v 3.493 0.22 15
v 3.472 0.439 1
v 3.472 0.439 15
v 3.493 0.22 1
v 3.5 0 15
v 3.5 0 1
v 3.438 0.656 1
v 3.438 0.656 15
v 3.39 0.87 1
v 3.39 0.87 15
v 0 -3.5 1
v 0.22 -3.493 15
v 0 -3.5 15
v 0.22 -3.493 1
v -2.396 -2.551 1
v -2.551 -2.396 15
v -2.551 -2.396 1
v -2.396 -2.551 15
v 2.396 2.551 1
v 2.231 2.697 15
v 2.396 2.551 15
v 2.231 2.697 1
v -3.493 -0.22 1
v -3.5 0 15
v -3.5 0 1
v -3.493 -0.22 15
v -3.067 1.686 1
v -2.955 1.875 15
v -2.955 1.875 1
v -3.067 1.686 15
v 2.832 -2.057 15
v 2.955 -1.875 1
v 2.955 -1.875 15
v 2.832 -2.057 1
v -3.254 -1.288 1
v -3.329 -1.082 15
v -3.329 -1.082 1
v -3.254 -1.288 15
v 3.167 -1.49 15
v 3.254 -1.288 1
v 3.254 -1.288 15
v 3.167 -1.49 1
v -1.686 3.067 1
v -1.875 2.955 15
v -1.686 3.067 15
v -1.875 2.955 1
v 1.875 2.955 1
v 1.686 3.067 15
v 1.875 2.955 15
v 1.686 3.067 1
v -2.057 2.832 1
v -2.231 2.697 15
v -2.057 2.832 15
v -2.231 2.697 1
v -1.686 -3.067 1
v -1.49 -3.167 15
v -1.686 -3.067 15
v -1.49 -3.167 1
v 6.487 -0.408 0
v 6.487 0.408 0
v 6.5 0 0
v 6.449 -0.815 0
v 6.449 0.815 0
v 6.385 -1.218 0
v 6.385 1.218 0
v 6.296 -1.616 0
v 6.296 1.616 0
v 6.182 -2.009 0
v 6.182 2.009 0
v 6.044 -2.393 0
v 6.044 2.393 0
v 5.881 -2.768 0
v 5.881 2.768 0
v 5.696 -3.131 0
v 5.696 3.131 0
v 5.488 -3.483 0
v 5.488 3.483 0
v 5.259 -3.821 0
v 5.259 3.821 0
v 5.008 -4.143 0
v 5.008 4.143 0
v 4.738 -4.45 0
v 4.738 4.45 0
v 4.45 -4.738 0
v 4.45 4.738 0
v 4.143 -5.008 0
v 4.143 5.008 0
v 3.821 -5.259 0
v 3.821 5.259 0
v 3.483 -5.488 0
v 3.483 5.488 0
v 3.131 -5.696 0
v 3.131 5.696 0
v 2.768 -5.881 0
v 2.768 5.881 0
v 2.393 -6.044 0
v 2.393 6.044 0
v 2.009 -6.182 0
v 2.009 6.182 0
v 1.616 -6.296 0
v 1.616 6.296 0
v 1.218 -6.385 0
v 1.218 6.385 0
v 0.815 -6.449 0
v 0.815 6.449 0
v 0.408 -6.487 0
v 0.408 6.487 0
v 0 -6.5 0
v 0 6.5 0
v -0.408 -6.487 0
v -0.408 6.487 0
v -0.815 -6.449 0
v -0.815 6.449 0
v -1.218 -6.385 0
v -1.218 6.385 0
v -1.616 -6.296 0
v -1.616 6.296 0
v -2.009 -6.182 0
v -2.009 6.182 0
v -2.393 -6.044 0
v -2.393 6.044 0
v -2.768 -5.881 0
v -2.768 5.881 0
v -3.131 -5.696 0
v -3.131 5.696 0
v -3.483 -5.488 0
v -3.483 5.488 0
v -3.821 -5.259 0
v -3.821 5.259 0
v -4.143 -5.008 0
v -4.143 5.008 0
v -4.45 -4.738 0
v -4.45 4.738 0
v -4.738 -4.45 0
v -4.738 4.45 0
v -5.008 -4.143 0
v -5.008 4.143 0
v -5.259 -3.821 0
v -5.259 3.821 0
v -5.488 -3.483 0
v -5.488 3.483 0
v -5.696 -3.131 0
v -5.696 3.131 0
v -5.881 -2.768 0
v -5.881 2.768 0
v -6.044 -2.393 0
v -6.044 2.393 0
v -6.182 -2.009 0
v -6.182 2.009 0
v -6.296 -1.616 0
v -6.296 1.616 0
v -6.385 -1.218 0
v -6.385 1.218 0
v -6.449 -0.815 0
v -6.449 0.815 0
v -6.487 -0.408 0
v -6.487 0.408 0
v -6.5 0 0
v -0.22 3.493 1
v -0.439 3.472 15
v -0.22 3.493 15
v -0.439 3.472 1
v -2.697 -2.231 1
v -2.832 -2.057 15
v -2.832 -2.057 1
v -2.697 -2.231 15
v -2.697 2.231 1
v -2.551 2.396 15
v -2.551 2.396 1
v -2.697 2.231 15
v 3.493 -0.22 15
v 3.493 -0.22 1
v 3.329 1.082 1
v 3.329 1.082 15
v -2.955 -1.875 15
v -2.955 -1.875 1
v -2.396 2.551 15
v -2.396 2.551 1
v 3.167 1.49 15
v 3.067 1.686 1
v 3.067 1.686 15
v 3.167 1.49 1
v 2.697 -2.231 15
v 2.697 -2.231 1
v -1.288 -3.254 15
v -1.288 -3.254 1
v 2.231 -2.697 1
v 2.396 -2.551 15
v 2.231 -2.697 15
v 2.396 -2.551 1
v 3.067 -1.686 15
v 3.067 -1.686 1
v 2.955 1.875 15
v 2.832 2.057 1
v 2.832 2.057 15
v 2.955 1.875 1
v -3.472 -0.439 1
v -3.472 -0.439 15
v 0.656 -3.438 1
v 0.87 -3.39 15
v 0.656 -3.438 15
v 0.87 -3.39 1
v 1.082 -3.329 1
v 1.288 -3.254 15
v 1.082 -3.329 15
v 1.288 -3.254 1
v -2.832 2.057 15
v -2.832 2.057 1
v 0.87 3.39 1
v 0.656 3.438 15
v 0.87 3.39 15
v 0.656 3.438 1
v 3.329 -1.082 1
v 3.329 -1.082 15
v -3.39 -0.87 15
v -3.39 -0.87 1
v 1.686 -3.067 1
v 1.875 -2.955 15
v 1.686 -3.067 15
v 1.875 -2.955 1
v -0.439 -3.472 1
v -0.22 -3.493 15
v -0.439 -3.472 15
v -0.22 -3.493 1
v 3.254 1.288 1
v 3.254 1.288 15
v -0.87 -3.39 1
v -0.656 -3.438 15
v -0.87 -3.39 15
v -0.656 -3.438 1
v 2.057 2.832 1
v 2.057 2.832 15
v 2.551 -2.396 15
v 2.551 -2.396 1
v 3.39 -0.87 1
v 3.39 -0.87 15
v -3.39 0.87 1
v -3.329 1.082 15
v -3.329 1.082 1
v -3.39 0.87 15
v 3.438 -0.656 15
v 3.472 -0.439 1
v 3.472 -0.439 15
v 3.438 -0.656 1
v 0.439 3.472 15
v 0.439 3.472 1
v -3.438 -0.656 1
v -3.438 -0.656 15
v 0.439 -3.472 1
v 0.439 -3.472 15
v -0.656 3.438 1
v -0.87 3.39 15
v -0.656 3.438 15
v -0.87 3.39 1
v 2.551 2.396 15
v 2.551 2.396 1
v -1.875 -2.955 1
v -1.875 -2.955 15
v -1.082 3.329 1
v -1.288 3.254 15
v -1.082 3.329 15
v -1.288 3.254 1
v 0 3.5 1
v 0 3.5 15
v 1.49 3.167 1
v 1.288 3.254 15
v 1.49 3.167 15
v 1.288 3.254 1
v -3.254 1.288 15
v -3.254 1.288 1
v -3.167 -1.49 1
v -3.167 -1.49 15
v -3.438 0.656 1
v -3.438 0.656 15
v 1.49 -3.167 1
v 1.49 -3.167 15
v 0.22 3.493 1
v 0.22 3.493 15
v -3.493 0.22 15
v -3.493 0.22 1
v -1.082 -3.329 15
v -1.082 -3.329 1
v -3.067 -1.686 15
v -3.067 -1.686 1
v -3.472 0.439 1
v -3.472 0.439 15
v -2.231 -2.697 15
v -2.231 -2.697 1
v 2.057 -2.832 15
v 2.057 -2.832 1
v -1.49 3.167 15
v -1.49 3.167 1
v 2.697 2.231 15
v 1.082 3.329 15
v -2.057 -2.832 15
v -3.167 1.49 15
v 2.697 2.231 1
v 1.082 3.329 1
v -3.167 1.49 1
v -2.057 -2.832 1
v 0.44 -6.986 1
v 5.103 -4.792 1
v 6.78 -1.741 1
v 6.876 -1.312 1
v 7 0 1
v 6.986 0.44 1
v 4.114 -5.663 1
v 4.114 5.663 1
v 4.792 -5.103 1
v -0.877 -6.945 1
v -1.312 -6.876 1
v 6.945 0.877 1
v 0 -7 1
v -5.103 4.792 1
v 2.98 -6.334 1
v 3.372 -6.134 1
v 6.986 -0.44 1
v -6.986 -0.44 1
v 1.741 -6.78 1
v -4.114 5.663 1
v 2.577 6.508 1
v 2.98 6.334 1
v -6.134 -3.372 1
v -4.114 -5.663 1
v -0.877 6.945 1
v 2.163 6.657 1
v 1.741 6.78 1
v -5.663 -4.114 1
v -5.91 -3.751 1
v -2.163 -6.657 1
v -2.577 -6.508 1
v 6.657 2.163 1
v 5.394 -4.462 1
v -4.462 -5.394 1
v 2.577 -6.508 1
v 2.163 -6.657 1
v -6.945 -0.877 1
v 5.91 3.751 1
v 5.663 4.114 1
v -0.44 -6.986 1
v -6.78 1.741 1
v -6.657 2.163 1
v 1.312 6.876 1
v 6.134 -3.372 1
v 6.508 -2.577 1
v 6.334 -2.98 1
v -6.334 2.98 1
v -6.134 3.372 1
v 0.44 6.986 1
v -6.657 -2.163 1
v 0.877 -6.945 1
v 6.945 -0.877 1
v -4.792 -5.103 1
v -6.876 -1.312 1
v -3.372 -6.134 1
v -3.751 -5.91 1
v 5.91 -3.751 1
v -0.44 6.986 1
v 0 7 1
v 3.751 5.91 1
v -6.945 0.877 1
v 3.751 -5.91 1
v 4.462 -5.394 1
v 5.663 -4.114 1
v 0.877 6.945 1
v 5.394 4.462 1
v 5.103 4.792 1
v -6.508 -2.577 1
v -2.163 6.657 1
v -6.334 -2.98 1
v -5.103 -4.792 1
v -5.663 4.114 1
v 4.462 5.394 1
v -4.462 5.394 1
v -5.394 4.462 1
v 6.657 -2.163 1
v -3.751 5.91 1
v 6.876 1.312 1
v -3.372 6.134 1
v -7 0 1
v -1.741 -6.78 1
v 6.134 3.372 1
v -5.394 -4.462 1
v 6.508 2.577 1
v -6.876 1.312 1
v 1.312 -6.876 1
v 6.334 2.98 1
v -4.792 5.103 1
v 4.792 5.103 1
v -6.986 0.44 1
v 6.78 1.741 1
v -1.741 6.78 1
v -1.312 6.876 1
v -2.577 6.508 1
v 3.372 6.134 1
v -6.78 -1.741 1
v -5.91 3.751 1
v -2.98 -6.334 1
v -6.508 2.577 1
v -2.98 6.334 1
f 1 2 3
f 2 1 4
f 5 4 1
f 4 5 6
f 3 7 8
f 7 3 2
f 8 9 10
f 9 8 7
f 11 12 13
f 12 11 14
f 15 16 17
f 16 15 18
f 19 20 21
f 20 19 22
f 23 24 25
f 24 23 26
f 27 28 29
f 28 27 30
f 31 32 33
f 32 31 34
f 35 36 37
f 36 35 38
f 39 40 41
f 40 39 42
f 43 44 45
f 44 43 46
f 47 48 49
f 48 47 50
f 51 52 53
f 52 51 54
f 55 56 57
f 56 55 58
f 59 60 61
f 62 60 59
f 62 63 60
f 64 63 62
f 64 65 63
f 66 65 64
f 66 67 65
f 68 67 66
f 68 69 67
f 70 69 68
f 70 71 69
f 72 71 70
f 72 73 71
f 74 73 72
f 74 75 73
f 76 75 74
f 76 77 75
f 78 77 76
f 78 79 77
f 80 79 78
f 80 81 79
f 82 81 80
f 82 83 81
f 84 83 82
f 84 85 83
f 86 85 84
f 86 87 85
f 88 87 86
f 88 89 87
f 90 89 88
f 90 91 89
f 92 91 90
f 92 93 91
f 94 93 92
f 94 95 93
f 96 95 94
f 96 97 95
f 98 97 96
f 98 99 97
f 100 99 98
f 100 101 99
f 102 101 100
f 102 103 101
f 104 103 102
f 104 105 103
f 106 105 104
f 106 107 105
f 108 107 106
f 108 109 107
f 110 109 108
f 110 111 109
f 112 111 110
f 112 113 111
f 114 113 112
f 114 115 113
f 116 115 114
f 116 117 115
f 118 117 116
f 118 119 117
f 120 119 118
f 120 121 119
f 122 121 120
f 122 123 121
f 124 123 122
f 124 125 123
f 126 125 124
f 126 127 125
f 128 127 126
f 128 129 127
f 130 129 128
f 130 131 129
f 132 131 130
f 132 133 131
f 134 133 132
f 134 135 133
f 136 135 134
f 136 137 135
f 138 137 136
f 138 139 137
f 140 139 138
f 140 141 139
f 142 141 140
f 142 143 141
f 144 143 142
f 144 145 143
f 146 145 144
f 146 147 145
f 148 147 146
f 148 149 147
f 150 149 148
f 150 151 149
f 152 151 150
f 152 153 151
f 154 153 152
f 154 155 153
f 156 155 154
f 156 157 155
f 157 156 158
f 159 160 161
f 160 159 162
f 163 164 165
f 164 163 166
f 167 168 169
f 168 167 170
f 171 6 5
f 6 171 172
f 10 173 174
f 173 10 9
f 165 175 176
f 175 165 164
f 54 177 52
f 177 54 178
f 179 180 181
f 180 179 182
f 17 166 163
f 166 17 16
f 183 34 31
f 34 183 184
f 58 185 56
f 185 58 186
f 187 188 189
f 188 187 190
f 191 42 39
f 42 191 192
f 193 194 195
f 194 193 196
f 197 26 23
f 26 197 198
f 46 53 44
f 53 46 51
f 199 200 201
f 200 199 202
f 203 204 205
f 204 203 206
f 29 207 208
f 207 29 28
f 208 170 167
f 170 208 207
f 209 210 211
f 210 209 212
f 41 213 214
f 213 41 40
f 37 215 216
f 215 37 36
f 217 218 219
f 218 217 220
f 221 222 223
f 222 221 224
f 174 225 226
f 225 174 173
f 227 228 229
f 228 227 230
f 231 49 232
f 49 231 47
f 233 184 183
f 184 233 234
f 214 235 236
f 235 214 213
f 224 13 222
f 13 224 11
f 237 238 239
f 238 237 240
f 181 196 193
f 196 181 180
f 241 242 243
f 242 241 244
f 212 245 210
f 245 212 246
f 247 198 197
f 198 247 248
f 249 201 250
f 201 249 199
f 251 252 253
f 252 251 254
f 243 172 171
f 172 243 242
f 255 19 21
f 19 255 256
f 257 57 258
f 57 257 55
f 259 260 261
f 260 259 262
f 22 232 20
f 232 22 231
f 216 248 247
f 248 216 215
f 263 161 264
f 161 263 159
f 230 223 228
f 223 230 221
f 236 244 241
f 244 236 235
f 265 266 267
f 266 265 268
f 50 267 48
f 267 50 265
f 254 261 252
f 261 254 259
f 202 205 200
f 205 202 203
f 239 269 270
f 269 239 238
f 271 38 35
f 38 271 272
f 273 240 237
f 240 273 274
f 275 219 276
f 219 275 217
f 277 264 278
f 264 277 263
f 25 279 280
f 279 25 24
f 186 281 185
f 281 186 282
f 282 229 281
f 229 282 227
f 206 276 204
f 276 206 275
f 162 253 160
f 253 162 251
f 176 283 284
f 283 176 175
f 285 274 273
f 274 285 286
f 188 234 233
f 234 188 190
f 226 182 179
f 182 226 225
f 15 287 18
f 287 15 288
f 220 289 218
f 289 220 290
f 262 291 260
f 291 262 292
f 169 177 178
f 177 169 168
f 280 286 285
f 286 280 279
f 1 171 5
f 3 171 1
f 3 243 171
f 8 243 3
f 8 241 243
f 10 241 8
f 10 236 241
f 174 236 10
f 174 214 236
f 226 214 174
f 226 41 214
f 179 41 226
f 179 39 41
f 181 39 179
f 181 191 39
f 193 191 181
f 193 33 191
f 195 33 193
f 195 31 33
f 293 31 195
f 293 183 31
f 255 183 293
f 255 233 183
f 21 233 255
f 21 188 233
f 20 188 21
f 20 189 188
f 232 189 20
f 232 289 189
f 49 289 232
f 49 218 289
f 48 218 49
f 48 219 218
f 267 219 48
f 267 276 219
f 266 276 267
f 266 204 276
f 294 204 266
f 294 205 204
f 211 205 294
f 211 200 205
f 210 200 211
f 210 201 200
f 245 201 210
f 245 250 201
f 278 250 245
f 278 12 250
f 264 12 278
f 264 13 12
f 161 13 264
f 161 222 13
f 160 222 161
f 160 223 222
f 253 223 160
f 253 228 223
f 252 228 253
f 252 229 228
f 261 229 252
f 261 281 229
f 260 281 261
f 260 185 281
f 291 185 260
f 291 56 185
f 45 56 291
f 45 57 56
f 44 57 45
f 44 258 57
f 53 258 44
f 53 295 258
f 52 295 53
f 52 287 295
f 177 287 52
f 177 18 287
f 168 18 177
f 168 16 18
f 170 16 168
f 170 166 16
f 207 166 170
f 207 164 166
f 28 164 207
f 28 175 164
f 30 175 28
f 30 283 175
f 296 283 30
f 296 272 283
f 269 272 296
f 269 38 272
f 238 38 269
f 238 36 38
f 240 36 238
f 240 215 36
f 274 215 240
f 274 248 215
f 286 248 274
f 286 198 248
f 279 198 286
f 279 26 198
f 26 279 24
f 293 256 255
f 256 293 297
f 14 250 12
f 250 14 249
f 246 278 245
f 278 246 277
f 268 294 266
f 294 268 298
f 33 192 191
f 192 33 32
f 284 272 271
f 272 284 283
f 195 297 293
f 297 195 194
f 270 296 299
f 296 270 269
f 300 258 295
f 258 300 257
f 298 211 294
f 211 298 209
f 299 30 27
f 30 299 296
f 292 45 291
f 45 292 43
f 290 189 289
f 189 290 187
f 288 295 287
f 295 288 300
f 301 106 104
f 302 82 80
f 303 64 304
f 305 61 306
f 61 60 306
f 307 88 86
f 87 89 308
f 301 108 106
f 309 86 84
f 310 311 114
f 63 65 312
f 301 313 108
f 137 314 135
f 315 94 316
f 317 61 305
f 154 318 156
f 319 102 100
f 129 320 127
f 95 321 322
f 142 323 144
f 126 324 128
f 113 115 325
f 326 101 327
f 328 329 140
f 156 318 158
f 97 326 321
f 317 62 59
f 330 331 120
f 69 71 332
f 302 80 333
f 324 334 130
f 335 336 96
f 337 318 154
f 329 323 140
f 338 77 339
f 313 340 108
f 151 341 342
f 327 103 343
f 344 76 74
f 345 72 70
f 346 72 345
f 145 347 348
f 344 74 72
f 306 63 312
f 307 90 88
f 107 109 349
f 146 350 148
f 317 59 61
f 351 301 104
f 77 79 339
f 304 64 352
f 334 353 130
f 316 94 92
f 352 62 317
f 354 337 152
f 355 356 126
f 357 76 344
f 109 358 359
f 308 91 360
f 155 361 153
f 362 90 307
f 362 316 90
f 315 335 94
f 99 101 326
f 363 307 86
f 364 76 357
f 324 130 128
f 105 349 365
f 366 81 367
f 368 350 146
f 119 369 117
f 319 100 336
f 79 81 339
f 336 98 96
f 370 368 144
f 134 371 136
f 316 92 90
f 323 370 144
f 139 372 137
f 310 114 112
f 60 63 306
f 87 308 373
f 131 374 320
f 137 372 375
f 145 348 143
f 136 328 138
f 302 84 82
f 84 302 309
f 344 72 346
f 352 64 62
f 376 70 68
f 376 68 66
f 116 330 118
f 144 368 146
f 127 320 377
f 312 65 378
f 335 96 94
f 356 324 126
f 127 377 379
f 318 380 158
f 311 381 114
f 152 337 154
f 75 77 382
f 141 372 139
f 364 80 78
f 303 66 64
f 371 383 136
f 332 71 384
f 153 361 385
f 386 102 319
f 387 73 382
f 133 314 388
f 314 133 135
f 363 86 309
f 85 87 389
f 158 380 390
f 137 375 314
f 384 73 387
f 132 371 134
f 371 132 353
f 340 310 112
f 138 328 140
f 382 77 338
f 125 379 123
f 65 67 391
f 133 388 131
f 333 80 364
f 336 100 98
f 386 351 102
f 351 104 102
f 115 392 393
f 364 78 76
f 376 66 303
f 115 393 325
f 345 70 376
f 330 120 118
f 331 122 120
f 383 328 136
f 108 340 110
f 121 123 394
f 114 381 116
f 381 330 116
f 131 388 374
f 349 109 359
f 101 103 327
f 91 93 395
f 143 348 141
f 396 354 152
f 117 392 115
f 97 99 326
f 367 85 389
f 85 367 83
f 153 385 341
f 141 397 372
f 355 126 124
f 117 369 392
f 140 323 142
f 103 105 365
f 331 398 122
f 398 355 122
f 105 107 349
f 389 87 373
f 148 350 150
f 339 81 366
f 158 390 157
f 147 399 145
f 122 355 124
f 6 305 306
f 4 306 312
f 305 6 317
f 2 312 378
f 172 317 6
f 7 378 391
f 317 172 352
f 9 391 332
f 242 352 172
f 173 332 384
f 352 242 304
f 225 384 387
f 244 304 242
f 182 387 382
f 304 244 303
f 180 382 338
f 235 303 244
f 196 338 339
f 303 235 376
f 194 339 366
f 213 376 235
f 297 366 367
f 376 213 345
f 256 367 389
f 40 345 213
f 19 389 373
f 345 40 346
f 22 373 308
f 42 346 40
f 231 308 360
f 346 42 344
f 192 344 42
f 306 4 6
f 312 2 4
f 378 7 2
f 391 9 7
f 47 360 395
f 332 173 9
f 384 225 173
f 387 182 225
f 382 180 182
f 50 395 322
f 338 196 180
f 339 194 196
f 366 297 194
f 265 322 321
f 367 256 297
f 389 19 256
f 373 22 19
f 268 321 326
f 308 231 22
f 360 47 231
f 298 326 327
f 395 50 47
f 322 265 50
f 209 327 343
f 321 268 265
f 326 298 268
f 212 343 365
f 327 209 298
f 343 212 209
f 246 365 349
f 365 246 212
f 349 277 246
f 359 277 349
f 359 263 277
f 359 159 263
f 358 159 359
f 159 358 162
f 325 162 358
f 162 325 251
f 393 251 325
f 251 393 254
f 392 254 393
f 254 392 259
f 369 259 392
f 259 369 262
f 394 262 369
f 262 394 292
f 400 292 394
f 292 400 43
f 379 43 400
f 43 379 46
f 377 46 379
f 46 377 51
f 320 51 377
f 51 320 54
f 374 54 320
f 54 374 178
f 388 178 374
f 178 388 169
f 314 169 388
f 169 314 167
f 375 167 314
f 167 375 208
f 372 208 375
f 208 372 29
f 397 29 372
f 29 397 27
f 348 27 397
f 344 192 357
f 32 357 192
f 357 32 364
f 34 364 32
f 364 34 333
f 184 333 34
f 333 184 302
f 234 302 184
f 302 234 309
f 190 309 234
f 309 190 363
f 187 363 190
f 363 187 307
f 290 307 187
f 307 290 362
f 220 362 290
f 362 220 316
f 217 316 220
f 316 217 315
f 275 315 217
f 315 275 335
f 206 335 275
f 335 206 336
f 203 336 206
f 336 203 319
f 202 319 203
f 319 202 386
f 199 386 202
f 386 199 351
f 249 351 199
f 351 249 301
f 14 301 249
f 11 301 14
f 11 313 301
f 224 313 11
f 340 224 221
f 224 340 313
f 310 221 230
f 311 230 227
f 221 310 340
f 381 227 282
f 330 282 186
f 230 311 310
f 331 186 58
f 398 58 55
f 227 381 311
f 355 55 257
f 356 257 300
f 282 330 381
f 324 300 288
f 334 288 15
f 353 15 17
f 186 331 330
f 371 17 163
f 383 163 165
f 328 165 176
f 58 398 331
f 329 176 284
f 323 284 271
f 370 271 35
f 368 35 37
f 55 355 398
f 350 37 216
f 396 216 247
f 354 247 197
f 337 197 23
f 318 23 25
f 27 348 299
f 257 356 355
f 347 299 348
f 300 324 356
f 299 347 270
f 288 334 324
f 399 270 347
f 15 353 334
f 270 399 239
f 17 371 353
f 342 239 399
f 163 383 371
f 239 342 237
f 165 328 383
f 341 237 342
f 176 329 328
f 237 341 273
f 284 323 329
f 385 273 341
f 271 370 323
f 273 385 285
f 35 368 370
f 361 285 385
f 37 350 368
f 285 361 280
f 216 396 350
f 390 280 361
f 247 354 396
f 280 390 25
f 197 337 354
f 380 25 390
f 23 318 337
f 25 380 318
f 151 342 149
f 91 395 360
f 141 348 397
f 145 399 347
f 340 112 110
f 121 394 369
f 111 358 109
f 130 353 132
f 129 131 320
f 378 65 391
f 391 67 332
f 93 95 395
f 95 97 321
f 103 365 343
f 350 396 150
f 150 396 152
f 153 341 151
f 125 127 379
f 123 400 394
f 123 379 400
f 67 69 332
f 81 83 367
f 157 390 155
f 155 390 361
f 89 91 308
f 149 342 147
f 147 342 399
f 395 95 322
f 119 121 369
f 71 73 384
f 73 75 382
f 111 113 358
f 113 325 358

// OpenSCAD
//plug for door hinge mounting hole (WHITE)
// door replaced by sliding glass door 27/11/2021
totDepth=15;
insertDiameter=7;
lidDiameter=14;
lidHeight=1;
$fn=100;
color ([1,1,1]) {
    cylinder(h=totDepth,d=insertDiameter);
    cylinder(h=lidHeight,d2=lidDiameter,d1=lidDiameter-lidHeight);
}
